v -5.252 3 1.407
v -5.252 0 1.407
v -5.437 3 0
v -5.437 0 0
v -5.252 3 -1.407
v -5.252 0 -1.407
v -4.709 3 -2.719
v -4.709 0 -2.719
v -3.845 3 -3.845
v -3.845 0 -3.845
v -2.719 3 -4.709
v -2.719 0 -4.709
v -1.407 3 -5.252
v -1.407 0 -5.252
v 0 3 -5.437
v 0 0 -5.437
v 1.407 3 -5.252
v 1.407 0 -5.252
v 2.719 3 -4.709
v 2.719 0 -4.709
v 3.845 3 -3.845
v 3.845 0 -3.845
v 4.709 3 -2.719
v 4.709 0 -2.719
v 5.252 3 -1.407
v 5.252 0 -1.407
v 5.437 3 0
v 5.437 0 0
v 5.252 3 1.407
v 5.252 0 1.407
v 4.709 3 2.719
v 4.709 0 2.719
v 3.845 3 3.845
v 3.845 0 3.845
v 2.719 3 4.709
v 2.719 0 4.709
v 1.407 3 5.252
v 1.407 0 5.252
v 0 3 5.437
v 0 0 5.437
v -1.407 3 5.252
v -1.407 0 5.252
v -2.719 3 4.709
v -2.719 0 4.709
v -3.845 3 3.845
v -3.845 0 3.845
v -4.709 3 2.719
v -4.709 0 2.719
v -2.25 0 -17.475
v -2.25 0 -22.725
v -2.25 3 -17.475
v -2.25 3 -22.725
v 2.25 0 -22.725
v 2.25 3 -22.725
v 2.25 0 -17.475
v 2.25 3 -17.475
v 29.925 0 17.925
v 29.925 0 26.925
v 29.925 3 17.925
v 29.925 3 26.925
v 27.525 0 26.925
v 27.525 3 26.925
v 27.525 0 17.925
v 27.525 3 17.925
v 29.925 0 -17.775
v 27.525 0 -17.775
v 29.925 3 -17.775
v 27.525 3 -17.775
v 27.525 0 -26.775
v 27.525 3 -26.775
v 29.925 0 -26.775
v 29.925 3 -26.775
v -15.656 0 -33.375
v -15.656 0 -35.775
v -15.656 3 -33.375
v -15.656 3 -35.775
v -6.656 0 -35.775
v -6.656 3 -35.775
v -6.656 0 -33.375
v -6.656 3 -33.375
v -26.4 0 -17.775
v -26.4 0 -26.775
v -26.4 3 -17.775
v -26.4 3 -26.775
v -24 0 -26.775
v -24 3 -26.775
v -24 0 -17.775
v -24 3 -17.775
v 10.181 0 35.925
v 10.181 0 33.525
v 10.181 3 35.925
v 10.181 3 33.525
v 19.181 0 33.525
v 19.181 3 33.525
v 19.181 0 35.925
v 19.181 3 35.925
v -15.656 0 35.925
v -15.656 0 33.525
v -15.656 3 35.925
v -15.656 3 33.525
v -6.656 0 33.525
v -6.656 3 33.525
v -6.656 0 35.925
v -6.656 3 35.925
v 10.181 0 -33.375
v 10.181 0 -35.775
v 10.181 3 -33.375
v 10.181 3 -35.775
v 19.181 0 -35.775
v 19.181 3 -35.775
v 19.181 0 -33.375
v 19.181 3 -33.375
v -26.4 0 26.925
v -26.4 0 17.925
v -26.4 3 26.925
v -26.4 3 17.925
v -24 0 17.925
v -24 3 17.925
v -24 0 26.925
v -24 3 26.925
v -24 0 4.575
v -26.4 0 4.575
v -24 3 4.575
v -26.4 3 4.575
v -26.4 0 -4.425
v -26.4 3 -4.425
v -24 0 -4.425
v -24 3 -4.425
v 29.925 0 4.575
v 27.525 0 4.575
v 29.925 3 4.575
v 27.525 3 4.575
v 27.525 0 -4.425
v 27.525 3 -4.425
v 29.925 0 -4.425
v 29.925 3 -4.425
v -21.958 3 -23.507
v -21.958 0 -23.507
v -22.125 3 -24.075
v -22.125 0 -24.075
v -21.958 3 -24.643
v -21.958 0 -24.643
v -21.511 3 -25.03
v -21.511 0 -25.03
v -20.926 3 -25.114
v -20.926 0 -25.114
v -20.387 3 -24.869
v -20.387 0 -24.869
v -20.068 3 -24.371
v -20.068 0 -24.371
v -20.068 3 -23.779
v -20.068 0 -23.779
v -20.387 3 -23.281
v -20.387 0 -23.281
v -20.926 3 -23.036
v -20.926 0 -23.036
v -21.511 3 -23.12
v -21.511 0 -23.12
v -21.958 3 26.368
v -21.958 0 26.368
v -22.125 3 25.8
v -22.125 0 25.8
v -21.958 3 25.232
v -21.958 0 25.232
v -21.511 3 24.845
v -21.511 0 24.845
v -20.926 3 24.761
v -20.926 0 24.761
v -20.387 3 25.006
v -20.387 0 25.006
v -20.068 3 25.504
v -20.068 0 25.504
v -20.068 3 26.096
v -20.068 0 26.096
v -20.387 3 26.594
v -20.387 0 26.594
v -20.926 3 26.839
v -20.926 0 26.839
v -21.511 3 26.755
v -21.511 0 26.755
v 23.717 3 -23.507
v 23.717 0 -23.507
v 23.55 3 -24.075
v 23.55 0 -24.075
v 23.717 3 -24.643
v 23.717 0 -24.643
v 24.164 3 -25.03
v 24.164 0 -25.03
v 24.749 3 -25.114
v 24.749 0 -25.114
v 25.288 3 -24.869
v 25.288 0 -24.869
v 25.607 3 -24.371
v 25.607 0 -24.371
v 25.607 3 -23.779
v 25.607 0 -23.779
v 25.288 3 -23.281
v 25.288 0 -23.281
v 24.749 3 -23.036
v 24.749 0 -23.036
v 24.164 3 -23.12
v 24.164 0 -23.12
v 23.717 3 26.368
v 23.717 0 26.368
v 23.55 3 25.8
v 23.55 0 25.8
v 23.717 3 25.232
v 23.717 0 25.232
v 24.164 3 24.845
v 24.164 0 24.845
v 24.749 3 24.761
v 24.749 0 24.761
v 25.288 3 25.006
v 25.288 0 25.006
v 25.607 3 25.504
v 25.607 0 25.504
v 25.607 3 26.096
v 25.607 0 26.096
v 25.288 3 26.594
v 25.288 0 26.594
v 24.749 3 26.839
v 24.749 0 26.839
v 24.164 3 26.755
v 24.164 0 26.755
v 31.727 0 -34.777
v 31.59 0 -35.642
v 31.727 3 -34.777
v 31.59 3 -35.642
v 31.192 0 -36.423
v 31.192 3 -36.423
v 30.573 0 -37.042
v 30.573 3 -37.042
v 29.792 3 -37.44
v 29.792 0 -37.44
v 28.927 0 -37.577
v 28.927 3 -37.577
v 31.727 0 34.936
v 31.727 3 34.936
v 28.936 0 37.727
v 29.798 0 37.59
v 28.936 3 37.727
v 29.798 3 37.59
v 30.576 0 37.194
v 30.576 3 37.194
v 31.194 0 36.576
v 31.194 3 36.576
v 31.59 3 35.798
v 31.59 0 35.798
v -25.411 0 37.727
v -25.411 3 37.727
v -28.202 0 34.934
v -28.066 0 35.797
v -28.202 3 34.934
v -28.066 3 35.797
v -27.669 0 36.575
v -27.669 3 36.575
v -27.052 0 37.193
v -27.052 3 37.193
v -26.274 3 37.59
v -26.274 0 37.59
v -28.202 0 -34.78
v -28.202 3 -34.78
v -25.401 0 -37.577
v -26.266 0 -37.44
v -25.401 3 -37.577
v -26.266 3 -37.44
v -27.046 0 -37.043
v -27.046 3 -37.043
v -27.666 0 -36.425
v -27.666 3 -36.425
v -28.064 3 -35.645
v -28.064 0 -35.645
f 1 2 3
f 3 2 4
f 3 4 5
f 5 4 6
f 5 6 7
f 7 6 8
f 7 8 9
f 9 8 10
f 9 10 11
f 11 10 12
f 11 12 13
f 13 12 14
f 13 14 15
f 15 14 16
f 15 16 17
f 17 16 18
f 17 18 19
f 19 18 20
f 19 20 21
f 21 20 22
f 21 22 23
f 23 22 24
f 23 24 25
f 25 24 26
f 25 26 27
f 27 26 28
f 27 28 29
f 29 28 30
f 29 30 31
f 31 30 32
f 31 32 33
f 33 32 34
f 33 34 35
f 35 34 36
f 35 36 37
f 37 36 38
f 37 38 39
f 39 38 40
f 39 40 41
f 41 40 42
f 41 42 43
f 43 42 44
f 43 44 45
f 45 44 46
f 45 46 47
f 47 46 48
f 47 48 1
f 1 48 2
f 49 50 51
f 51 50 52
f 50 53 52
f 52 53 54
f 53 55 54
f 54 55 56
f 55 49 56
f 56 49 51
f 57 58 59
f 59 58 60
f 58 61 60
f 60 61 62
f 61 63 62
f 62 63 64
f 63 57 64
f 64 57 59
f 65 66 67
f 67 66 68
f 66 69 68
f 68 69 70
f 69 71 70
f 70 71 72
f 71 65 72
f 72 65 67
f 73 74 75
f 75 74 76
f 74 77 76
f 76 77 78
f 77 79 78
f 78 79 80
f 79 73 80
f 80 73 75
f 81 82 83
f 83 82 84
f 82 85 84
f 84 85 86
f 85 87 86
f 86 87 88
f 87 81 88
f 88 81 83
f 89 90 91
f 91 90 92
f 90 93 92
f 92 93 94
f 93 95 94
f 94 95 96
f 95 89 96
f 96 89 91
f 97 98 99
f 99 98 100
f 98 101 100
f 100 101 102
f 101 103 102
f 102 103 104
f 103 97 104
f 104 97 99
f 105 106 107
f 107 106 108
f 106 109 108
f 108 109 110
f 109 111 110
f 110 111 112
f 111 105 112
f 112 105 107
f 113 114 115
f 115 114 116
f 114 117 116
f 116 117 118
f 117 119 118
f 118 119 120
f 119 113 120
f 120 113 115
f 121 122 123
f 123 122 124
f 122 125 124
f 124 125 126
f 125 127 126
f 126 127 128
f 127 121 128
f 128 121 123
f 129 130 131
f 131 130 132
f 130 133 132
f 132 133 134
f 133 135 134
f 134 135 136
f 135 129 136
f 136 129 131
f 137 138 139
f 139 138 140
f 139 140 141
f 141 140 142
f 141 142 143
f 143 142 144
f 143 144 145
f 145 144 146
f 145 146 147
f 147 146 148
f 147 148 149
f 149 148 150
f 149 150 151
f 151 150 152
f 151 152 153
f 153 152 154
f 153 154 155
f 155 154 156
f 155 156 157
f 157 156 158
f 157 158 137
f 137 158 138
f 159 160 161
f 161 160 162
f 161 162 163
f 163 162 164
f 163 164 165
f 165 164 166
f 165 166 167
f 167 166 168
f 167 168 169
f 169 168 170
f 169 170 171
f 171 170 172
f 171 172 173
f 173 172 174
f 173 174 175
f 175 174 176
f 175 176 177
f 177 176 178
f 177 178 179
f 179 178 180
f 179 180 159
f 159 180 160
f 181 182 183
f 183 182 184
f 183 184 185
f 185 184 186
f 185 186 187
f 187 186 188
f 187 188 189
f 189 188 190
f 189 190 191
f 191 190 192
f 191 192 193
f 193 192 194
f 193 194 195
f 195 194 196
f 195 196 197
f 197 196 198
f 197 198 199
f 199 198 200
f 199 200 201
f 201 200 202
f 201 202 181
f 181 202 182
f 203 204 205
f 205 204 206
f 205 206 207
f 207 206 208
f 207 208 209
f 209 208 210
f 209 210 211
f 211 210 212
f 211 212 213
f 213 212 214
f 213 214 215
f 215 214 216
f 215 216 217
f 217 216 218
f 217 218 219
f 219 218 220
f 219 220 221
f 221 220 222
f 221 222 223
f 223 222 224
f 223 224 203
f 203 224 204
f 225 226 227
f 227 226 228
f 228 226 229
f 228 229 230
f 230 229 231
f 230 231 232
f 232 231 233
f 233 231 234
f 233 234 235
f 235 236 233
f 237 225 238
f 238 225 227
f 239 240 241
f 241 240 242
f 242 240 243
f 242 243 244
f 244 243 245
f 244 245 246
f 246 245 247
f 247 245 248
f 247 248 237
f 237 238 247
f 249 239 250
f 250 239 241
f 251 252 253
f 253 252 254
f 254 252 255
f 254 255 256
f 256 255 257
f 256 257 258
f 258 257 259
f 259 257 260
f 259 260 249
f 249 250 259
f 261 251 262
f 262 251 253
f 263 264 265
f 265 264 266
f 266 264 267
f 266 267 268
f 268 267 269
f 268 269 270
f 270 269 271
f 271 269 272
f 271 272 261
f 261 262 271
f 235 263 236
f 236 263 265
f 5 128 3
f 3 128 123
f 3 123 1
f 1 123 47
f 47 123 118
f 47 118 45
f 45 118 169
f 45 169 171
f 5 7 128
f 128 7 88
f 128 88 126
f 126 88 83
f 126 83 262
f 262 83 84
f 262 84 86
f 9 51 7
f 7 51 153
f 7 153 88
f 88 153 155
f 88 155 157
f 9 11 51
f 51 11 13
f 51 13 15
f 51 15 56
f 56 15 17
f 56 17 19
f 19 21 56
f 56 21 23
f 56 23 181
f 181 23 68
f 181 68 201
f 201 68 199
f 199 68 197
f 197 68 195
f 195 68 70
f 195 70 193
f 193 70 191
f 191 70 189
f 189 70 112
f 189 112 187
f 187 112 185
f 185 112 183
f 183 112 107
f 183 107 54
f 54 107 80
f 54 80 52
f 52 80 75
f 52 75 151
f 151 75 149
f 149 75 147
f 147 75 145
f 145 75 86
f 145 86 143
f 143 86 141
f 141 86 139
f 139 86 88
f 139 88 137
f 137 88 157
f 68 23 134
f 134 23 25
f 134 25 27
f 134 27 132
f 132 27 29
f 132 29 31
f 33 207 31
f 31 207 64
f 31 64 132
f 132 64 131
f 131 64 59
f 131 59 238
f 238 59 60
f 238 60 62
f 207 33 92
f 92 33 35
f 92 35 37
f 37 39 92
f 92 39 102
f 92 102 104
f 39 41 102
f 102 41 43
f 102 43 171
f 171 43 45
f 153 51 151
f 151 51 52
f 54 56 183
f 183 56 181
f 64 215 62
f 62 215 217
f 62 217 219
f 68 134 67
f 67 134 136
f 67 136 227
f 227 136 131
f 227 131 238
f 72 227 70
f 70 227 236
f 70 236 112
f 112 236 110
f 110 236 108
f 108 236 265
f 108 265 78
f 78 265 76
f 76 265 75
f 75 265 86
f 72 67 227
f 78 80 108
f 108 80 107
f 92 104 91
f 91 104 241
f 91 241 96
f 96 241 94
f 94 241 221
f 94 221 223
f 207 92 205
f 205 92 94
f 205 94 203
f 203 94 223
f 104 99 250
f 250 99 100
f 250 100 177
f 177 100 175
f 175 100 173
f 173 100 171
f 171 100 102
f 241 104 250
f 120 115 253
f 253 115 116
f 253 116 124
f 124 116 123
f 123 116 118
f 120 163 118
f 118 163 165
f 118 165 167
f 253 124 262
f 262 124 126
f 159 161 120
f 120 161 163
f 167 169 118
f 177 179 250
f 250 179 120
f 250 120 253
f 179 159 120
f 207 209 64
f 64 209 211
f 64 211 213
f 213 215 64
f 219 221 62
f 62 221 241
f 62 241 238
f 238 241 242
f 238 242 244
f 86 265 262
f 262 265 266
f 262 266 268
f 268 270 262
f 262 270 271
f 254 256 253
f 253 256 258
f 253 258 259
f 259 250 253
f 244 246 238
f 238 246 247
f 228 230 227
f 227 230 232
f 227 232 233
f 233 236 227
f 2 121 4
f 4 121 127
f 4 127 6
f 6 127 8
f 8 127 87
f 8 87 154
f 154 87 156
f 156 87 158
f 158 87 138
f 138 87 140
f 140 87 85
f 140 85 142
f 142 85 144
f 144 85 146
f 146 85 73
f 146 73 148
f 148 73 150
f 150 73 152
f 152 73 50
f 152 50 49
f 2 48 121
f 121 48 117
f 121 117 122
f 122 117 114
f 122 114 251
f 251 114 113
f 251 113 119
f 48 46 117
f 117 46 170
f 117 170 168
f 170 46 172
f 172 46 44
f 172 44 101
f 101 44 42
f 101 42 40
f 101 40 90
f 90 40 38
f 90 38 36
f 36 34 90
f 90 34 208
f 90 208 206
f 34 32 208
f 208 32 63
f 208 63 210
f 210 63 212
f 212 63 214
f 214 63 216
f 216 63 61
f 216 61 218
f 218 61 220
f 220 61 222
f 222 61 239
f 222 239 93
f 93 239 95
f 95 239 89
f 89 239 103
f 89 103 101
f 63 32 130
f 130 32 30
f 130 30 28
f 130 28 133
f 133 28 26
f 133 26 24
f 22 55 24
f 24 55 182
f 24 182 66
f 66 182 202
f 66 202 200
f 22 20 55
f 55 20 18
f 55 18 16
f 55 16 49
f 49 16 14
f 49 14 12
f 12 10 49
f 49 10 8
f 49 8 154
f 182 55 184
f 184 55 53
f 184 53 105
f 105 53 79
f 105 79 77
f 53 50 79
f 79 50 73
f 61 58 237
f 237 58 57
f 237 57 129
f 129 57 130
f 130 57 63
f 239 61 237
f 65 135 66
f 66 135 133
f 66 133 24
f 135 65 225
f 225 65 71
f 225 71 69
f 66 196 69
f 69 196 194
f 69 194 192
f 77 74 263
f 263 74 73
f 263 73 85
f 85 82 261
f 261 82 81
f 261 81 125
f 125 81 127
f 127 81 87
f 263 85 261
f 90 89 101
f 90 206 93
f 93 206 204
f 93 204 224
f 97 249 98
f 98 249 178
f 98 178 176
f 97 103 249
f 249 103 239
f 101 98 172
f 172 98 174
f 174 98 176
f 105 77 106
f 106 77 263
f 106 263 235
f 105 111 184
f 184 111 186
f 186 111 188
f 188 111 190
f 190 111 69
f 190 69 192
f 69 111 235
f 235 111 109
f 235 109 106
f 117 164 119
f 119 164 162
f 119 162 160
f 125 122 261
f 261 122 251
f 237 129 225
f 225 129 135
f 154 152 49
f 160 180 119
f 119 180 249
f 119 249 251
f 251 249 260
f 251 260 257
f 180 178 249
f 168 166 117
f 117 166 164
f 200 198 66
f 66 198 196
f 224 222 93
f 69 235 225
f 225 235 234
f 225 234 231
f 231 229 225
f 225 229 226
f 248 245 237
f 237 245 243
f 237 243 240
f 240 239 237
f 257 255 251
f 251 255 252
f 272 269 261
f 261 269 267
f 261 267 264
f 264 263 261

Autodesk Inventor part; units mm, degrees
ref_plane "YZ Plane" through (0, 0, 0) normal (1, 0, 0) x (0, 1, 0)
ref_plane "XZ Plane" through (0, 0, 0) normal (0, 1, 0) x (-1, 0, 0)
ref_plane "XY Plane" through (0, 0, 0) normal (0, 0, 1) x (1, 0, 0)
sketch "Boceto1" plane through (0, 0, 0) normal (0, 1, 0) x (-1, 0, 0)
  line L0 (-31.7268, 34.9358) -> (-31.7268, -34.7768)
  line L1 (-28.9268, -37.5768) -> (25.401, -37.5769)
  line L2 (28.2018, -34.7802) -> (28.2019, 34.9339)
  line L3 (25.4109, 37.7268) -> (-28.9358, 37.7268)
  line L4 (-29.925, -4.425) -> (-29.925, 4.575)
  line L5 (-29.925, 4.575) -> (-29.85, 4.575)
  line L6 (-29.85, 4.575) -> (-27.6, 4.575)
  line L7 (-27.6, 4.575) -> (-27.525, 4.575)
  line L8 (-27.525, 4.575) -> (-27.525, -4.425)
  line L9 (-27.525, -4.425) -> (-27.6, -4.425)
  line L10 (-27.6, -4.425) -> (-29.85, -4.425)
  line L11 (-29.85, -4.425) -> (-29.925, -4.425)
  line L12 (26.4, -4.425) -> (26.325, -4.425)
  line L13 (26.325, -4.425) -> (24.075, -4.425)
  line L14 (24.075, -4.425) -> (24, -4.425)
  line L15 (24, -4.425) -> (24, 4.575)
  line L16 (24, 4.575) -> (24.075, 4.575)
  line L17 (24.075, 4.575) -> (26.325, 4.575)
  line L18 (26.325, 4.575) -> (26.4, 4.575)
  line L19 (26.4, 4.575) -> (26.4, -4.425)
  line L20 (26.325, 26.925) -> (26.4, 26.925)
  line L21 (26.4, 26.925) -> (26.4, 17.925)
  line L22 (26.4, 17.925) -> (26.325, 17.925)
  line L23 (26.325, 17.925) -> (24.075, 17.925)
  line L24 (24.075, 17.925) -> (24, 17.925)
  line L25 (24, 17.925) -> (24, 26.925)
  line L26 (24, 26.925) -> (24.075, 26.925)
  line L27 (24.075, 26.925) -> (26.325, 26.925)
  line L28 (-19.1813, -35.775) -> (-19.1813, -35.7)
  line L29 (-19.1813, -35.7) -> (-19.1813, -33.45)
  line L30 (-19.1813, -33.45) -> (-19.1813, -33.375)
  line L31 (-19.1813, -33.375) -> (-10.1813, -33.375)
  line L32 (-10.1813, -33.375) -> (-10.1813, -33.45)
  line L33 (-10.1813, -33.45) -> (-10.1813, -35.7)
  line L34 (-10.1813, -35.7) -> (-10.1813, -35.775)
  line L35 (-10.1813, -35.775) -> (-19.1813, -35.775)
  line L36 (6.6562, 33.525) -> (6.6562, 33.6)
  line L37 (6.6562, 33.6) -> (6.6562, 35.85)
  line L38 (6.6562, 35.85) -> (6.6562, 35.925)
  line L39 (6.6562, 35.925) -> (15.6562, 35.925)
  line L40 (15.6562, 35.925) -> (15.6562, 35.85)
  line L41 (15.6562, 35.85) -> (15.6562, 33.6)
  line L42 (15.6562, 33.6) -> (15.6562, 33.525)
  line L43 (15.6562, 33.525) -> (6.6562, 33.525)
  line L44 (-19.1813, 33.525) -> (-19.1813, 33.6)
  line L45 (-19.1813, 33.6) -> (-19.1813, 35.85)
  line L46 (-19.1813, 35.85) -> (-19.1813, 35.925)
  line L47 (-19.1813, 35.925) -> (-10.1813, 35.925)
  line L48 (-10.1813, 35.925) -> (-10.1813, 35.85)
  line L49 (-10.1813, 35.85) -> (-10.1813, 33.6)
  line L50 (-10.1813, 33.6) -> (-10.1813, 33.525)
  line L51 (-10.1813, 33.525) -> (-19.1813, 33.525)
  line L52 (24.075, -17.775) -> (26.325, -17.775)
  line L53 (26.325, -17.775) -> (26.4, -17.775)
  line L54 (26.4, -17.775) -> (26.4, -26.775)
  line L55 (26.4, -26.775) -> (26.325, -26.775)
  line L56 (26.325, -26.775) -> (24.075, -26.775)
  line L57 (24.075, -26.775) -> (24, -26.775)
  line L58 (24, -26.775) -> (24, -17.775)
  line L59 (24, -17.775) -> (24.075, -17.775)
  line L60 (6.6562, -35.775) -> (6.6562, -35.7)
  line L61 (6.6562, -35.7) -> (6.6562, -33.45)
  line L62 (6.6562, -33.45) -> (6.6562, -33.375)
  line L63 (6.6562, -33.375) -> (15.6562, -33.375)
  line L64 (15.6562, -33.375) -> (15.6562, -33.45)
  line L65 (15.6562, -33.45) -> (15.6562, -35.7)
  line L66 (15.6562, -35.7) -> (15.6562, -35.775)
  line L67 (15.6562, -35.775) -> (6.6562, -35.775)
  line L68 (-27.6, -26.775) -> (-29.85, -26.775)
  line L69 (-29.85, -26.775) -> (-29.925, -26.775)
  line L70 (-29.925, -26.775) -> (-29.925, -17.775)
  line L71 (-29.925, -17.775) -> (-29.85, -17.775)
  line L72 (-29.85, -17.775) -> (-27.6, -17.775)
  line L73 (-27.6, -17.775) -> (-27.525, -17.775)
  line L74 (-27.525, -17.775) -> (-27.525, -26.775)
  line L75 (-27.525, -26.775) -> (-27.6, -26.775)
  line L76 (-27.525, 26.925) -> (-27.525, 17.925)
  line L77 (-27.525, 17.925) -> (-27.6, 17.925)
  line L78 (-27.6, 17.925) -> (-29.85, 17.925)
  line L79 (-29.85, 17.925) -> (-29.925, 17.925)
  line L80 (-29.925, 17.925) -> (-29.925, 26.925)
  line L81 (-29.925, 26.925) -> (-29.85, 26.925)
  line L82 (-29.85, 26.925) -> (-27.6, 26.925)
  line L83 (-27.6, 26.925) -> (-27.525, 26.925)
  line L84 (-2.25, -17.475) -> (2.25, -17.475)
  line L85 (2.25, -17.475) -> (2.25, -22.725)
  line L86 (2.25, -22.725) -> (-2.25, -22.725)
  line L87 (-2.25, -22.725) -> (-2.25, -17.475)
  circle A0 centre (-24.6, 25.8) radius 1.05
  circle A1 centre (21.075, 25.8) radius 1.05
  circle A2 centre (0, 0) radius 5.4375
  arc A3 (-31.7268, -34.7768) -> (-28.9268, -37.5768) centre (-28.9268, -34.7768) ccw
  arc A4 (-28.9358, 37.7268) -> (-31.7268, 34.9358) centre (-28.9358, 34.9358) ccw
  arc A5 (25.401, -37.5769) -> (28.2018, -34.7802) centre (25.4018, -34.7769) ccw
  arc A6 (28.2019, 34.9339) -> (25.4109, 37.7268) centre (25.4108, 34.9357) ccw
  circle A7 centre (-24.6, -24.075) radius 1.05
  circle A8 centre (21.075, -24.075) radius 1.05
  line L88 (15.6562, 35.925) -> (6.6562, 35.925)
  line L89 (6.6562, 35.925) -> (6.6562, 33.525)
  line L90 (6.6562, 33.525) -> (15.6562, 33.525)
  line L91 (15.6562, 33.525) -> (15.6562, 35.925)
  line L92 (26.4, 26.925) -> (24, 26.925)
  line L93 (24, 26.925) -> (24, 17.925)
  line L94 (24, 17.925) -> (26.4, 17.925)
  line L95 (26.4, 17.925) -> (26.4, 26.925)
  line L96 (26.4, 4.575) -> (24, 4.575)
  line L97 (24, 4.575) -> (24, -4.425)
  line L98 (24, -4.425) -> (26.4, -4.425)
  line L99 (26.4, -4.425) -> (26.4, 4.575)
  line L100 (26.4, -17.775) -> (24, -17.775)
  line L101 (24, -17.775) -> (24, -26.775)
  line L102 (24, -26.775) -> (26.4, -26.775)
  line L103 (26.4, -26.775) -> (26.4, -17.775)
  line L104 (15.6562, -33.375) -> (6.6562, -33.375)
  line L105 (6.6562, -33.375) -> (6.6562, -35.775)
  line L106 (6.6562, -35.775) -> (15.6562, -35.775)
  line L107 (15.6562, -35.775) -> (15.6562, -33.375)
  line L108 (-10.1813, -33.375) -> (-19.1813, -33.375)
  line L109 (-19.1813, -33.375) -> (-19.1813, -35.775)
  line L110 (-19.1813, -35.775) -> (-10.1813, -35.775)
  line L111 (-10.1813, -35.775) -> (-10.1813, -33.375)
  line L112 (-27.525, -26.775) -> (-29.925, -26.775)
  line L113 (-29.925, -26.775) -> (-29.925, -17.775)
  line L114 (-29.925, -17.775) -> (-27.525, -17.775)
  line L115 (-27.525, -17.775) -> (-27.525, -26.775)
  line L116 (-27.525, -4.425) -> (-29.925, -4.425)
  line L117 (-29.925, -4.425) -> (-29.925, 4.575)
  line L118 (-29.925, 4.575) -> (-27.525, 4.575)
  line L119 (-27.525, 4.575) -> (-27.525, -4.425)
  line L120 (-27.525, 17.925) -> (-29.925, 17.925)
  line L121 (-29.925, 17.925) -> (-29.925, 26.925)
  line L122 (-29.925, 26.925) -> (-27.525, 26.925)
  line L123 (-27.525, 26.925) -> (-27.525, 17.925)
  line L124 (-19.1813, 35.925) -> (-10.1813, 35.925)
  line L125 (-10.1813, 35.925) -> (-10.1813, 33.525)
  line L126 (-10.1813, 33.525) -> (-19.1813, 33.525)
  line L127 (-19.1813, 33.525) -> (-19.1813, 35.925)
  line L128 (2.25, -17.475) -> (-2.25, -17.475)
  line L129 (-2.25, -17.475) -> (-2.25, -22.725)
  line L130 (-2.25, -22.725) -> (2.25, -22.725)
  line L131 (2.25, -22.725) -> (2.25, -17.475)
extrude "Extrusión1" add sketch "Boceto1" along normal blind 3
properties part number "tapa2"
